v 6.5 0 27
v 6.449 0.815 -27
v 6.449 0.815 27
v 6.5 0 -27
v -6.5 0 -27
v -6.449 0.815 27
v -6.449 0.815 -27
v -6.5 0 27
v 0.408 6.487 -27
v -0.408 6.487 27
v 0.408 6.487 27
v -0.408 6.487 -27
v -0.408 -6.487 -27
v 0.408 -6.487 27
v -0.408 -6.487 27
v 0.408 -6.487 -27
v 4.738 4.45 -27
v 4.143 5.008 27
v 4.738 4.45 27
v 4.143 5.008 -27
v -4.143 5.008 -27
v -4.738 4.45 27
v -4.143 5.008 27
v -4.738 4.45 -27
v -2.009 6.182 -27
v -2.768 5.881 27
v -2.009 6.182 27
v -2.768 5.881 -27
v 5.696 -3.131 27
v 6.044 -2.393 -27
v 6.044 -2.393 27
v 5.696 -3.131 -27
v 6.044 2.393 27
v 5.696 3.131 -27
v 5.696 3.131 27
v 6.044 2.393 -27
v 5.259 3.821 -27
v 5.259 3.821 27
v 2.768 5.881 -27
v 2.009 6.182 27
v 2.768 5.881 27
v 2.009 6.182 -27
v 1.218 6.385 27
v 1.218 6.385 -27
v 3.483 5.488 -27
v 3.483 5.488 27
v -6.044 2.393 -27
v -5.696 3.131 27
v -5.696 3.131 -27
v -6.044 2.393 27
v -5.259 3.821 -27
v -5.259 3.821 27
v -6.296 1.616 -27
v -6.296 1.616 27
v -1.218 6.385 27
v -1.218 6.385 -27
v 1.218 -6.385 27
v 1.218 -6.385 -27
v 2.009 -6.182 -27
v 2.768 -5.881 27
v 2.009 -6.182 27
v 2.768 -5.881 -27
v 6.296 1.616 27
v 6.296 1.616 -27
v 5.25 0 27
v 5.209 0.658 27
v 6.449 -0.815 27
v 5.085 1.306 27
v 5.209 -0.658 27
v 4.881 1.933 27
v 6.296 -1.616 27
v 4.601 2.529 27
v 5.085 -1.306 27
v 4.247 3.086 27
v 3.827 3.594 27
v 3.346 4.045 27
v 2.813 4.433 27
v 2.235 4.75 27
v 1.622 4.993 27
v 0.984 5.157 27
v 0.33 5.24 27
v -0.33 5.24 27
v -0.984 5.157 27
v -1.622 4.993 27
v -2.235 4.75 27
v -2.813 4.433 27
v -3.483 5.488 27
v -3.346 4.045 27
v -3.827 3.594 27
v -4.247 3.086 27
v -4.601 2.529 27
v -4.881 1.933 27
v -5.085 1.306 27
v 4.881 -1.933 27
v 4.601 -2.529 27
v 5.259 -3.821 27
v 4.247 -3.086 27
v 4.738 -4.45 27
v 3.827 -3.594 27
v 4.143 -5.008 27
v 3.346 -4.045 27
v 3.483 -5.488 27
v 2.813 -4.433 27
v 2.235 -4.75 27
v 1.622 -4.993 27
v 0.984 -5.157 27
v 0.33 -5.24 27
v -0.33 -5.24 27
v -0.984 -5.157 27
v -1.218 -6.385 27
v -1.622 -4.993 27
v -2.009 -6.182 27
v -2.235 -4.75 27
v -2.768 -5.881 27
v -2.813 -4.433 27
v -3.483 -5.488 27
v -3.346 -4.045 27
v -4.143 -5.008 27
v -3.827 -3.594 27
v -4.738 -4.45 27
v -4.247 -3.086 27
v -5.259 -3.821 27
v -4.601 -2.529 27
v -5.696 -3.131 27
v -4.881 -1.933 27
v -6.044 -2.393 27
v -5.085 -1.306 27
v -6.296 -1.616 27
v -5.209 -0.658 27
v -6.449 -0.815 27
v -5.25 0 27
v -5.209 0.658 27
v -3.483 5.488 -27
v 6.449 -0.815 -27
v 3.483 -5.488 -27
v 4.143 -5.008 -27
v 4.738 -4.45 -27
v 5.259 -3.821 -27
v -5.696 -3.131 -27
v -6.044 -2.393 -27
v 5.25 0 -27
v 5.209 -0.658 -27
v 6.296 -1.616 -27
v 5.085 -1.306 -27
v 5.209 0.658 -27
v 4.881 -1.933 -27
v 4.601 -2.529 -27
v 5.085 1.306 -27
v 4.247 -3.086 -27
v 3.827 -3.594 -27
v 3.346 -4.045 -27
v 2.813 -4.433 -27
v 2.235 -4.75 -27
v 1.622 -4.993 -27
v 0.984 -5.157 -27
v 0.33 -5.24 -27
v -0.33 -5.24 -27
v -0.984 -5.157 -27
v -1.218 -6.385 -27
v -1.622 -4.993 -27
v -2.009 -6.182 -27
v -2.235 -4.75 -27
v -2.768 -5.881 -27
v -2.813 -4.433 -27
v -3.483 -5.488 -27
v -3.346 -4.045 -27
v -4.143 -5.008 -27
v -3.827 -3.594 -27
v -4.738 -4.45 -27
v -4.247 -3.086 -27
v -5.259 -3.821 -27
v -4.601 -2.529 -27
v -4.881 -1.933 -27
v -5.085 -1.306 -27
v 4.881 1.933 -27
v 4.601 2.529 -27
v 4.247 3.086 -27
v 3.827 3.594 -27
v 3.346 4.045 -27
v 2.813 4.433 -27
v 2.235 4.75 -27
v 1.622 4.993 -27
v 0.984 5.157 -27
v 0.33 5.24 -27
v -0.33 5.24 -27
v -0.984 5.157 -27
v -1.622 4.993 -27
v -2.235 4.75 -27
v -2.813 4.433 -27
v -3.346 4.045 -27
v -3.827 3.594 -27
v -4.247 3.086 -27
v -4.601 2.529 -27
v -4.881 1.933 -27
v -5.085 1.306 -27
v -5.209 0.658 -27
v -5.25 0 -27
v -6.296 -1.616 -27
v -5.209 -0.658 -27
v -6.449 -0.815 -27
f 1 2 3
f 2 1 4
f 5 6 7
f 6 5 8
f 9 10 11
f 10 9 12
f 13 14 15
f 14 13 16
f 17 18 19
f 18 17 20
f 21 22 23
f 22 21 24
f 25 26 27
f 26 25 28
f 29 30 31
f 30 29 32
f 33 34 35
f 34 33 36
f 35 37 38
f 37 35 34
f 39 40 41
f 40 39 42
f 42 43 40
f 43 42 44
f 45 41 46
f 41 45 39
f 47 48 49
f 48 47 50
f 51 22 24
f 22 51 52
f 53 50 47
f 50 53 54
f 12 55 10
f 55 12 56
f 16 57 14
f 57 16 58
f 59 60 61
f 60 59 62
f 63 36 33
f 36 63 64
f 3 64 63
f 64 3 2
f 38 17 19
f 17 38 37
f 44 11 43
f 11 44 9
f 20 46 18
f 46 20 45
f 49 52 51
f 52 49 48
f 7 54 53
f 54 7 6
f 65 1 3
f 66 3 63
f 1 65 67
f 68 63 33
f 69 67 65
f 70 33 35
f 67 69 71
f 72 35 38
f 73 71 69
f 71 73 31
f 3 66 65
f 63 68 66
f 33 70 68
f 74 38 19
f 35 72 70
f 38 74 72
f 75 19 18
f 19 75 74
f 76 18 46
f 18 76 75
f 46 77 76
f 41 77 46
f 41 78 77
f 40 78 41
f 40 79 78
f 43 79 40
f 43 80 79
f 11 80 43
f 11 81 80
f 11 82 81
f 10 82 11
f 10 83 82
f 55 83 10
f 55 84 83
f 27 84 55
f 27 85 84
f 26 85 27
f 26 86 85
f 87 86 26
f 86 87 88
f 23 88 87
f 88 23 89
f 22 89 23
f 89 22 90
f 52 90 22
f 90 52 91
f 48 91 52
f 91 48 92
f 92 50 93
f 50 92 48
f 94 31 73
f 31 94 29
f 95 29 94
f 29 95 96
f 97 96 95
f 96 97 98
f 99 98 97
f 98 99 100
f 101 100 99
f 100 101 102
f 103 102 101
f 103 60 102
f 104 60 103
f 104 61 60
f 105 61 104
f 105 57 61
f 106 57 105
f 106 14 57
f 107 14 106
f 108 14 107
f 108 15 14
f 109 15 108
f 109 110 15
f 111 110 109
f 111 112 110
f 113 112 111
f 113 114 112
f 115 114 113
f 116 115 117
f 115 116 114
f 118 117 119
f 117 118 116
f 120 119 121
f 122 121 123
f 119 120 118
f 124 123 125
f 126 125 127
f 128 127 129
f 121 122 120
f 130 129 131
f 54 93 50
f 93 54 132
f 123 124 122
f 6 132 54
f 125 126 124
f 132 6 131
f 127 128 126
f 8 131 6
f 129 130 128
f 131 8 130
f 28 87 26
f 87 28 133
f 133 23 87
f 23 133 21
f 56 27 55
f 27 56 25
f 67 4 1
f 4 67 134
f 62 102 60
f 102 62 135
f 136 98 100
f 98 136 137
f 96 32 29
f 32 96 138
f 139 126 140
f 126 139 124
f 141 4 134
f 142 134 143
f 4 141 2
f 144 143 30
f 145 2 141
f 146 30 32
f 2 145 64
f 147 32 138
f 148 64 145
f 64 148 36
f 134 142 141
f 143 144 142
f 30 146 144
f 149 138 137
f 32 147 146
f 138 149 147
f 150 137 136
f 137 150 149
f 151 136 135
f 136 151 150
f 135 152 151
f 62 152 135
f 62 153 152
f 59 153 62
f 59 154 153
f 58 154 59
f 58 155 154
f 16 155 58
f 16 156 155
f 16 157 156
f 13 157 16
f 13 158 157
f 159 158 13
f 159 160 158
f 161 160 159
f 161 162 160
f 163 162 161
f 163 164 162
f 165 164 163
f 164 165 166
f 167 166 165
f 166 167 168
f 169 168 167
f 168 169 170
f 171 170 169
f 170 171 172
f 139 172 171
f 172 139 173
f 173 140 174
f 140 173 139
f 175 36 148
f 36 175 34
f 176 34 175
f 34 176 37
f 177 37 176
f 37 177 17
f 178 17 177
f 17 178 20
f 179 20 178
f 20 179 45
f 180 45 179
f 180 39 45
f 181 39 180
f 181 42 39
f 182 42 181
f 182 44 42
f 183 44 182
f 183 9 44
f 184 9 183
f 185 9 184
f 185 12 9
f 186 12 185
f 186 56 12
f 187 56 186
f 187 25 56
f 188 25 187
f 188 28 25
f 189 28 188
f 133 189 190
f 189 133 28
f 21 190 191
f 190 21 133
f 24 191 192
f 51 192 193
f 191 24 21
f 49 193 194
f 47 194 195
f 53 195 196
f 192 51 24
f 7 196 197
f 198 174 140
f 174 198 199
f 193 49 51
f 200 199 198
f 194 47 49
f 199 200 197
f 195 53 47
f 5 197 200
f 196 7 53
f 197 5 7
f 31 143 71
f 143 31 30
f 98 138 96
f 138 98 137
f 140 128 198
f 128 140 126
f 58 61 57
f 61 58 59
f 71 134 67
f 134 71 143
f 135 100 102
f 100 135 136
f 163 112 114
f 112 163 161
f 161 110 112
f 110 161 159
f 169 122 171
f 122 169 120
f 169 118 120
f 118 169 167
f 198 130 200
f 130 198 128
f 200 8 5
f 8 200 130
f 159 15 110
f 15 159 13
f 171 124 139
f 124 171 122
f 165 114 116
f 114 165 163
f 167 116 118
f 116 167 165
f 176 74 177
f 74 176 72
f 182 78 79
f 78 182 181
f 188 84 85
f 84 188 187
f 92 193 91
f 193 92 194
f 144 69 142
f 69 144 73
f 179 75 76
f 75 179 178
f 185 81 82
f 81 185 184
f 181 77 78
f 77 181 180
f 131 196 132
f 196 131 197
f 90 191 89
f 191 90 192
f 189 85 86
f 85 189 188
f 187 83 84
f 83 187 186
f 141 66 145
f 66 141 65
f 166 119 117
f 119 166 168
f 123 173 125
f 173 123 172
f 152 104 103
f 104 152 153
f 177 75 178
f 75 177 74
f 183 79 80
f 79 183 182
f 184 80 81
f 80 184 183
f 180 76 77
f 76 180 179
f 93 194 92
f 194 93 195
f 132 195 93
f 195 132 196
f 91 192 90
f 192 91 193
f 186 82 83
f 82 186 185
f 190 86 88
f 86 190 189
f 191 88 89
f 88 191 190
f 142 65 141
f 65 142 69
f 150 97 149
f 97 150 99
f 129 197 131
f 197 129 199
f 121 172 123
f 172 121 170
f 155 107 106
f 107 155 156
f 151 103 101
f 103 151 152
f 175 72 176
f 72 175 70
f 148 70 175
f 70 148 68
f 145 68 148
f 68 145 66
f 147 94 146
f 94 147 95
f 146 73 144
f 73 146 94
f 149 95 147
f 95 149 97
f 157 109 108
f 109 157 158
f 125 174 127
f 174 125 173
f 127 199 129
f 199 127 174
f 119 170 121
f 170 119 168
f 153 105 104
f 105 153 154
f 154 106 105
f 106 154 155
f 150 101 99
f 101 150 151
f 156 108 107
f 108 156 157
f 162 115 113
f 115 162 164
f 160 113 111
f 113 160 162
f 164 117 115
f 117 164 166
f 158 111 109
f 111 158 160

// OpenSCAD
$fn = 50;


difference() {
	union() {
		translate(v = [0, 0, -27.0000000000]) {
			cylinder(h = 54, r = 6.5000000000);
		}
	}
	union() {
		translate(v = [0, 0, -100.0000000000]) {
			cylinder(h = 200, r = 5.2500000000);
		}
	}
}
